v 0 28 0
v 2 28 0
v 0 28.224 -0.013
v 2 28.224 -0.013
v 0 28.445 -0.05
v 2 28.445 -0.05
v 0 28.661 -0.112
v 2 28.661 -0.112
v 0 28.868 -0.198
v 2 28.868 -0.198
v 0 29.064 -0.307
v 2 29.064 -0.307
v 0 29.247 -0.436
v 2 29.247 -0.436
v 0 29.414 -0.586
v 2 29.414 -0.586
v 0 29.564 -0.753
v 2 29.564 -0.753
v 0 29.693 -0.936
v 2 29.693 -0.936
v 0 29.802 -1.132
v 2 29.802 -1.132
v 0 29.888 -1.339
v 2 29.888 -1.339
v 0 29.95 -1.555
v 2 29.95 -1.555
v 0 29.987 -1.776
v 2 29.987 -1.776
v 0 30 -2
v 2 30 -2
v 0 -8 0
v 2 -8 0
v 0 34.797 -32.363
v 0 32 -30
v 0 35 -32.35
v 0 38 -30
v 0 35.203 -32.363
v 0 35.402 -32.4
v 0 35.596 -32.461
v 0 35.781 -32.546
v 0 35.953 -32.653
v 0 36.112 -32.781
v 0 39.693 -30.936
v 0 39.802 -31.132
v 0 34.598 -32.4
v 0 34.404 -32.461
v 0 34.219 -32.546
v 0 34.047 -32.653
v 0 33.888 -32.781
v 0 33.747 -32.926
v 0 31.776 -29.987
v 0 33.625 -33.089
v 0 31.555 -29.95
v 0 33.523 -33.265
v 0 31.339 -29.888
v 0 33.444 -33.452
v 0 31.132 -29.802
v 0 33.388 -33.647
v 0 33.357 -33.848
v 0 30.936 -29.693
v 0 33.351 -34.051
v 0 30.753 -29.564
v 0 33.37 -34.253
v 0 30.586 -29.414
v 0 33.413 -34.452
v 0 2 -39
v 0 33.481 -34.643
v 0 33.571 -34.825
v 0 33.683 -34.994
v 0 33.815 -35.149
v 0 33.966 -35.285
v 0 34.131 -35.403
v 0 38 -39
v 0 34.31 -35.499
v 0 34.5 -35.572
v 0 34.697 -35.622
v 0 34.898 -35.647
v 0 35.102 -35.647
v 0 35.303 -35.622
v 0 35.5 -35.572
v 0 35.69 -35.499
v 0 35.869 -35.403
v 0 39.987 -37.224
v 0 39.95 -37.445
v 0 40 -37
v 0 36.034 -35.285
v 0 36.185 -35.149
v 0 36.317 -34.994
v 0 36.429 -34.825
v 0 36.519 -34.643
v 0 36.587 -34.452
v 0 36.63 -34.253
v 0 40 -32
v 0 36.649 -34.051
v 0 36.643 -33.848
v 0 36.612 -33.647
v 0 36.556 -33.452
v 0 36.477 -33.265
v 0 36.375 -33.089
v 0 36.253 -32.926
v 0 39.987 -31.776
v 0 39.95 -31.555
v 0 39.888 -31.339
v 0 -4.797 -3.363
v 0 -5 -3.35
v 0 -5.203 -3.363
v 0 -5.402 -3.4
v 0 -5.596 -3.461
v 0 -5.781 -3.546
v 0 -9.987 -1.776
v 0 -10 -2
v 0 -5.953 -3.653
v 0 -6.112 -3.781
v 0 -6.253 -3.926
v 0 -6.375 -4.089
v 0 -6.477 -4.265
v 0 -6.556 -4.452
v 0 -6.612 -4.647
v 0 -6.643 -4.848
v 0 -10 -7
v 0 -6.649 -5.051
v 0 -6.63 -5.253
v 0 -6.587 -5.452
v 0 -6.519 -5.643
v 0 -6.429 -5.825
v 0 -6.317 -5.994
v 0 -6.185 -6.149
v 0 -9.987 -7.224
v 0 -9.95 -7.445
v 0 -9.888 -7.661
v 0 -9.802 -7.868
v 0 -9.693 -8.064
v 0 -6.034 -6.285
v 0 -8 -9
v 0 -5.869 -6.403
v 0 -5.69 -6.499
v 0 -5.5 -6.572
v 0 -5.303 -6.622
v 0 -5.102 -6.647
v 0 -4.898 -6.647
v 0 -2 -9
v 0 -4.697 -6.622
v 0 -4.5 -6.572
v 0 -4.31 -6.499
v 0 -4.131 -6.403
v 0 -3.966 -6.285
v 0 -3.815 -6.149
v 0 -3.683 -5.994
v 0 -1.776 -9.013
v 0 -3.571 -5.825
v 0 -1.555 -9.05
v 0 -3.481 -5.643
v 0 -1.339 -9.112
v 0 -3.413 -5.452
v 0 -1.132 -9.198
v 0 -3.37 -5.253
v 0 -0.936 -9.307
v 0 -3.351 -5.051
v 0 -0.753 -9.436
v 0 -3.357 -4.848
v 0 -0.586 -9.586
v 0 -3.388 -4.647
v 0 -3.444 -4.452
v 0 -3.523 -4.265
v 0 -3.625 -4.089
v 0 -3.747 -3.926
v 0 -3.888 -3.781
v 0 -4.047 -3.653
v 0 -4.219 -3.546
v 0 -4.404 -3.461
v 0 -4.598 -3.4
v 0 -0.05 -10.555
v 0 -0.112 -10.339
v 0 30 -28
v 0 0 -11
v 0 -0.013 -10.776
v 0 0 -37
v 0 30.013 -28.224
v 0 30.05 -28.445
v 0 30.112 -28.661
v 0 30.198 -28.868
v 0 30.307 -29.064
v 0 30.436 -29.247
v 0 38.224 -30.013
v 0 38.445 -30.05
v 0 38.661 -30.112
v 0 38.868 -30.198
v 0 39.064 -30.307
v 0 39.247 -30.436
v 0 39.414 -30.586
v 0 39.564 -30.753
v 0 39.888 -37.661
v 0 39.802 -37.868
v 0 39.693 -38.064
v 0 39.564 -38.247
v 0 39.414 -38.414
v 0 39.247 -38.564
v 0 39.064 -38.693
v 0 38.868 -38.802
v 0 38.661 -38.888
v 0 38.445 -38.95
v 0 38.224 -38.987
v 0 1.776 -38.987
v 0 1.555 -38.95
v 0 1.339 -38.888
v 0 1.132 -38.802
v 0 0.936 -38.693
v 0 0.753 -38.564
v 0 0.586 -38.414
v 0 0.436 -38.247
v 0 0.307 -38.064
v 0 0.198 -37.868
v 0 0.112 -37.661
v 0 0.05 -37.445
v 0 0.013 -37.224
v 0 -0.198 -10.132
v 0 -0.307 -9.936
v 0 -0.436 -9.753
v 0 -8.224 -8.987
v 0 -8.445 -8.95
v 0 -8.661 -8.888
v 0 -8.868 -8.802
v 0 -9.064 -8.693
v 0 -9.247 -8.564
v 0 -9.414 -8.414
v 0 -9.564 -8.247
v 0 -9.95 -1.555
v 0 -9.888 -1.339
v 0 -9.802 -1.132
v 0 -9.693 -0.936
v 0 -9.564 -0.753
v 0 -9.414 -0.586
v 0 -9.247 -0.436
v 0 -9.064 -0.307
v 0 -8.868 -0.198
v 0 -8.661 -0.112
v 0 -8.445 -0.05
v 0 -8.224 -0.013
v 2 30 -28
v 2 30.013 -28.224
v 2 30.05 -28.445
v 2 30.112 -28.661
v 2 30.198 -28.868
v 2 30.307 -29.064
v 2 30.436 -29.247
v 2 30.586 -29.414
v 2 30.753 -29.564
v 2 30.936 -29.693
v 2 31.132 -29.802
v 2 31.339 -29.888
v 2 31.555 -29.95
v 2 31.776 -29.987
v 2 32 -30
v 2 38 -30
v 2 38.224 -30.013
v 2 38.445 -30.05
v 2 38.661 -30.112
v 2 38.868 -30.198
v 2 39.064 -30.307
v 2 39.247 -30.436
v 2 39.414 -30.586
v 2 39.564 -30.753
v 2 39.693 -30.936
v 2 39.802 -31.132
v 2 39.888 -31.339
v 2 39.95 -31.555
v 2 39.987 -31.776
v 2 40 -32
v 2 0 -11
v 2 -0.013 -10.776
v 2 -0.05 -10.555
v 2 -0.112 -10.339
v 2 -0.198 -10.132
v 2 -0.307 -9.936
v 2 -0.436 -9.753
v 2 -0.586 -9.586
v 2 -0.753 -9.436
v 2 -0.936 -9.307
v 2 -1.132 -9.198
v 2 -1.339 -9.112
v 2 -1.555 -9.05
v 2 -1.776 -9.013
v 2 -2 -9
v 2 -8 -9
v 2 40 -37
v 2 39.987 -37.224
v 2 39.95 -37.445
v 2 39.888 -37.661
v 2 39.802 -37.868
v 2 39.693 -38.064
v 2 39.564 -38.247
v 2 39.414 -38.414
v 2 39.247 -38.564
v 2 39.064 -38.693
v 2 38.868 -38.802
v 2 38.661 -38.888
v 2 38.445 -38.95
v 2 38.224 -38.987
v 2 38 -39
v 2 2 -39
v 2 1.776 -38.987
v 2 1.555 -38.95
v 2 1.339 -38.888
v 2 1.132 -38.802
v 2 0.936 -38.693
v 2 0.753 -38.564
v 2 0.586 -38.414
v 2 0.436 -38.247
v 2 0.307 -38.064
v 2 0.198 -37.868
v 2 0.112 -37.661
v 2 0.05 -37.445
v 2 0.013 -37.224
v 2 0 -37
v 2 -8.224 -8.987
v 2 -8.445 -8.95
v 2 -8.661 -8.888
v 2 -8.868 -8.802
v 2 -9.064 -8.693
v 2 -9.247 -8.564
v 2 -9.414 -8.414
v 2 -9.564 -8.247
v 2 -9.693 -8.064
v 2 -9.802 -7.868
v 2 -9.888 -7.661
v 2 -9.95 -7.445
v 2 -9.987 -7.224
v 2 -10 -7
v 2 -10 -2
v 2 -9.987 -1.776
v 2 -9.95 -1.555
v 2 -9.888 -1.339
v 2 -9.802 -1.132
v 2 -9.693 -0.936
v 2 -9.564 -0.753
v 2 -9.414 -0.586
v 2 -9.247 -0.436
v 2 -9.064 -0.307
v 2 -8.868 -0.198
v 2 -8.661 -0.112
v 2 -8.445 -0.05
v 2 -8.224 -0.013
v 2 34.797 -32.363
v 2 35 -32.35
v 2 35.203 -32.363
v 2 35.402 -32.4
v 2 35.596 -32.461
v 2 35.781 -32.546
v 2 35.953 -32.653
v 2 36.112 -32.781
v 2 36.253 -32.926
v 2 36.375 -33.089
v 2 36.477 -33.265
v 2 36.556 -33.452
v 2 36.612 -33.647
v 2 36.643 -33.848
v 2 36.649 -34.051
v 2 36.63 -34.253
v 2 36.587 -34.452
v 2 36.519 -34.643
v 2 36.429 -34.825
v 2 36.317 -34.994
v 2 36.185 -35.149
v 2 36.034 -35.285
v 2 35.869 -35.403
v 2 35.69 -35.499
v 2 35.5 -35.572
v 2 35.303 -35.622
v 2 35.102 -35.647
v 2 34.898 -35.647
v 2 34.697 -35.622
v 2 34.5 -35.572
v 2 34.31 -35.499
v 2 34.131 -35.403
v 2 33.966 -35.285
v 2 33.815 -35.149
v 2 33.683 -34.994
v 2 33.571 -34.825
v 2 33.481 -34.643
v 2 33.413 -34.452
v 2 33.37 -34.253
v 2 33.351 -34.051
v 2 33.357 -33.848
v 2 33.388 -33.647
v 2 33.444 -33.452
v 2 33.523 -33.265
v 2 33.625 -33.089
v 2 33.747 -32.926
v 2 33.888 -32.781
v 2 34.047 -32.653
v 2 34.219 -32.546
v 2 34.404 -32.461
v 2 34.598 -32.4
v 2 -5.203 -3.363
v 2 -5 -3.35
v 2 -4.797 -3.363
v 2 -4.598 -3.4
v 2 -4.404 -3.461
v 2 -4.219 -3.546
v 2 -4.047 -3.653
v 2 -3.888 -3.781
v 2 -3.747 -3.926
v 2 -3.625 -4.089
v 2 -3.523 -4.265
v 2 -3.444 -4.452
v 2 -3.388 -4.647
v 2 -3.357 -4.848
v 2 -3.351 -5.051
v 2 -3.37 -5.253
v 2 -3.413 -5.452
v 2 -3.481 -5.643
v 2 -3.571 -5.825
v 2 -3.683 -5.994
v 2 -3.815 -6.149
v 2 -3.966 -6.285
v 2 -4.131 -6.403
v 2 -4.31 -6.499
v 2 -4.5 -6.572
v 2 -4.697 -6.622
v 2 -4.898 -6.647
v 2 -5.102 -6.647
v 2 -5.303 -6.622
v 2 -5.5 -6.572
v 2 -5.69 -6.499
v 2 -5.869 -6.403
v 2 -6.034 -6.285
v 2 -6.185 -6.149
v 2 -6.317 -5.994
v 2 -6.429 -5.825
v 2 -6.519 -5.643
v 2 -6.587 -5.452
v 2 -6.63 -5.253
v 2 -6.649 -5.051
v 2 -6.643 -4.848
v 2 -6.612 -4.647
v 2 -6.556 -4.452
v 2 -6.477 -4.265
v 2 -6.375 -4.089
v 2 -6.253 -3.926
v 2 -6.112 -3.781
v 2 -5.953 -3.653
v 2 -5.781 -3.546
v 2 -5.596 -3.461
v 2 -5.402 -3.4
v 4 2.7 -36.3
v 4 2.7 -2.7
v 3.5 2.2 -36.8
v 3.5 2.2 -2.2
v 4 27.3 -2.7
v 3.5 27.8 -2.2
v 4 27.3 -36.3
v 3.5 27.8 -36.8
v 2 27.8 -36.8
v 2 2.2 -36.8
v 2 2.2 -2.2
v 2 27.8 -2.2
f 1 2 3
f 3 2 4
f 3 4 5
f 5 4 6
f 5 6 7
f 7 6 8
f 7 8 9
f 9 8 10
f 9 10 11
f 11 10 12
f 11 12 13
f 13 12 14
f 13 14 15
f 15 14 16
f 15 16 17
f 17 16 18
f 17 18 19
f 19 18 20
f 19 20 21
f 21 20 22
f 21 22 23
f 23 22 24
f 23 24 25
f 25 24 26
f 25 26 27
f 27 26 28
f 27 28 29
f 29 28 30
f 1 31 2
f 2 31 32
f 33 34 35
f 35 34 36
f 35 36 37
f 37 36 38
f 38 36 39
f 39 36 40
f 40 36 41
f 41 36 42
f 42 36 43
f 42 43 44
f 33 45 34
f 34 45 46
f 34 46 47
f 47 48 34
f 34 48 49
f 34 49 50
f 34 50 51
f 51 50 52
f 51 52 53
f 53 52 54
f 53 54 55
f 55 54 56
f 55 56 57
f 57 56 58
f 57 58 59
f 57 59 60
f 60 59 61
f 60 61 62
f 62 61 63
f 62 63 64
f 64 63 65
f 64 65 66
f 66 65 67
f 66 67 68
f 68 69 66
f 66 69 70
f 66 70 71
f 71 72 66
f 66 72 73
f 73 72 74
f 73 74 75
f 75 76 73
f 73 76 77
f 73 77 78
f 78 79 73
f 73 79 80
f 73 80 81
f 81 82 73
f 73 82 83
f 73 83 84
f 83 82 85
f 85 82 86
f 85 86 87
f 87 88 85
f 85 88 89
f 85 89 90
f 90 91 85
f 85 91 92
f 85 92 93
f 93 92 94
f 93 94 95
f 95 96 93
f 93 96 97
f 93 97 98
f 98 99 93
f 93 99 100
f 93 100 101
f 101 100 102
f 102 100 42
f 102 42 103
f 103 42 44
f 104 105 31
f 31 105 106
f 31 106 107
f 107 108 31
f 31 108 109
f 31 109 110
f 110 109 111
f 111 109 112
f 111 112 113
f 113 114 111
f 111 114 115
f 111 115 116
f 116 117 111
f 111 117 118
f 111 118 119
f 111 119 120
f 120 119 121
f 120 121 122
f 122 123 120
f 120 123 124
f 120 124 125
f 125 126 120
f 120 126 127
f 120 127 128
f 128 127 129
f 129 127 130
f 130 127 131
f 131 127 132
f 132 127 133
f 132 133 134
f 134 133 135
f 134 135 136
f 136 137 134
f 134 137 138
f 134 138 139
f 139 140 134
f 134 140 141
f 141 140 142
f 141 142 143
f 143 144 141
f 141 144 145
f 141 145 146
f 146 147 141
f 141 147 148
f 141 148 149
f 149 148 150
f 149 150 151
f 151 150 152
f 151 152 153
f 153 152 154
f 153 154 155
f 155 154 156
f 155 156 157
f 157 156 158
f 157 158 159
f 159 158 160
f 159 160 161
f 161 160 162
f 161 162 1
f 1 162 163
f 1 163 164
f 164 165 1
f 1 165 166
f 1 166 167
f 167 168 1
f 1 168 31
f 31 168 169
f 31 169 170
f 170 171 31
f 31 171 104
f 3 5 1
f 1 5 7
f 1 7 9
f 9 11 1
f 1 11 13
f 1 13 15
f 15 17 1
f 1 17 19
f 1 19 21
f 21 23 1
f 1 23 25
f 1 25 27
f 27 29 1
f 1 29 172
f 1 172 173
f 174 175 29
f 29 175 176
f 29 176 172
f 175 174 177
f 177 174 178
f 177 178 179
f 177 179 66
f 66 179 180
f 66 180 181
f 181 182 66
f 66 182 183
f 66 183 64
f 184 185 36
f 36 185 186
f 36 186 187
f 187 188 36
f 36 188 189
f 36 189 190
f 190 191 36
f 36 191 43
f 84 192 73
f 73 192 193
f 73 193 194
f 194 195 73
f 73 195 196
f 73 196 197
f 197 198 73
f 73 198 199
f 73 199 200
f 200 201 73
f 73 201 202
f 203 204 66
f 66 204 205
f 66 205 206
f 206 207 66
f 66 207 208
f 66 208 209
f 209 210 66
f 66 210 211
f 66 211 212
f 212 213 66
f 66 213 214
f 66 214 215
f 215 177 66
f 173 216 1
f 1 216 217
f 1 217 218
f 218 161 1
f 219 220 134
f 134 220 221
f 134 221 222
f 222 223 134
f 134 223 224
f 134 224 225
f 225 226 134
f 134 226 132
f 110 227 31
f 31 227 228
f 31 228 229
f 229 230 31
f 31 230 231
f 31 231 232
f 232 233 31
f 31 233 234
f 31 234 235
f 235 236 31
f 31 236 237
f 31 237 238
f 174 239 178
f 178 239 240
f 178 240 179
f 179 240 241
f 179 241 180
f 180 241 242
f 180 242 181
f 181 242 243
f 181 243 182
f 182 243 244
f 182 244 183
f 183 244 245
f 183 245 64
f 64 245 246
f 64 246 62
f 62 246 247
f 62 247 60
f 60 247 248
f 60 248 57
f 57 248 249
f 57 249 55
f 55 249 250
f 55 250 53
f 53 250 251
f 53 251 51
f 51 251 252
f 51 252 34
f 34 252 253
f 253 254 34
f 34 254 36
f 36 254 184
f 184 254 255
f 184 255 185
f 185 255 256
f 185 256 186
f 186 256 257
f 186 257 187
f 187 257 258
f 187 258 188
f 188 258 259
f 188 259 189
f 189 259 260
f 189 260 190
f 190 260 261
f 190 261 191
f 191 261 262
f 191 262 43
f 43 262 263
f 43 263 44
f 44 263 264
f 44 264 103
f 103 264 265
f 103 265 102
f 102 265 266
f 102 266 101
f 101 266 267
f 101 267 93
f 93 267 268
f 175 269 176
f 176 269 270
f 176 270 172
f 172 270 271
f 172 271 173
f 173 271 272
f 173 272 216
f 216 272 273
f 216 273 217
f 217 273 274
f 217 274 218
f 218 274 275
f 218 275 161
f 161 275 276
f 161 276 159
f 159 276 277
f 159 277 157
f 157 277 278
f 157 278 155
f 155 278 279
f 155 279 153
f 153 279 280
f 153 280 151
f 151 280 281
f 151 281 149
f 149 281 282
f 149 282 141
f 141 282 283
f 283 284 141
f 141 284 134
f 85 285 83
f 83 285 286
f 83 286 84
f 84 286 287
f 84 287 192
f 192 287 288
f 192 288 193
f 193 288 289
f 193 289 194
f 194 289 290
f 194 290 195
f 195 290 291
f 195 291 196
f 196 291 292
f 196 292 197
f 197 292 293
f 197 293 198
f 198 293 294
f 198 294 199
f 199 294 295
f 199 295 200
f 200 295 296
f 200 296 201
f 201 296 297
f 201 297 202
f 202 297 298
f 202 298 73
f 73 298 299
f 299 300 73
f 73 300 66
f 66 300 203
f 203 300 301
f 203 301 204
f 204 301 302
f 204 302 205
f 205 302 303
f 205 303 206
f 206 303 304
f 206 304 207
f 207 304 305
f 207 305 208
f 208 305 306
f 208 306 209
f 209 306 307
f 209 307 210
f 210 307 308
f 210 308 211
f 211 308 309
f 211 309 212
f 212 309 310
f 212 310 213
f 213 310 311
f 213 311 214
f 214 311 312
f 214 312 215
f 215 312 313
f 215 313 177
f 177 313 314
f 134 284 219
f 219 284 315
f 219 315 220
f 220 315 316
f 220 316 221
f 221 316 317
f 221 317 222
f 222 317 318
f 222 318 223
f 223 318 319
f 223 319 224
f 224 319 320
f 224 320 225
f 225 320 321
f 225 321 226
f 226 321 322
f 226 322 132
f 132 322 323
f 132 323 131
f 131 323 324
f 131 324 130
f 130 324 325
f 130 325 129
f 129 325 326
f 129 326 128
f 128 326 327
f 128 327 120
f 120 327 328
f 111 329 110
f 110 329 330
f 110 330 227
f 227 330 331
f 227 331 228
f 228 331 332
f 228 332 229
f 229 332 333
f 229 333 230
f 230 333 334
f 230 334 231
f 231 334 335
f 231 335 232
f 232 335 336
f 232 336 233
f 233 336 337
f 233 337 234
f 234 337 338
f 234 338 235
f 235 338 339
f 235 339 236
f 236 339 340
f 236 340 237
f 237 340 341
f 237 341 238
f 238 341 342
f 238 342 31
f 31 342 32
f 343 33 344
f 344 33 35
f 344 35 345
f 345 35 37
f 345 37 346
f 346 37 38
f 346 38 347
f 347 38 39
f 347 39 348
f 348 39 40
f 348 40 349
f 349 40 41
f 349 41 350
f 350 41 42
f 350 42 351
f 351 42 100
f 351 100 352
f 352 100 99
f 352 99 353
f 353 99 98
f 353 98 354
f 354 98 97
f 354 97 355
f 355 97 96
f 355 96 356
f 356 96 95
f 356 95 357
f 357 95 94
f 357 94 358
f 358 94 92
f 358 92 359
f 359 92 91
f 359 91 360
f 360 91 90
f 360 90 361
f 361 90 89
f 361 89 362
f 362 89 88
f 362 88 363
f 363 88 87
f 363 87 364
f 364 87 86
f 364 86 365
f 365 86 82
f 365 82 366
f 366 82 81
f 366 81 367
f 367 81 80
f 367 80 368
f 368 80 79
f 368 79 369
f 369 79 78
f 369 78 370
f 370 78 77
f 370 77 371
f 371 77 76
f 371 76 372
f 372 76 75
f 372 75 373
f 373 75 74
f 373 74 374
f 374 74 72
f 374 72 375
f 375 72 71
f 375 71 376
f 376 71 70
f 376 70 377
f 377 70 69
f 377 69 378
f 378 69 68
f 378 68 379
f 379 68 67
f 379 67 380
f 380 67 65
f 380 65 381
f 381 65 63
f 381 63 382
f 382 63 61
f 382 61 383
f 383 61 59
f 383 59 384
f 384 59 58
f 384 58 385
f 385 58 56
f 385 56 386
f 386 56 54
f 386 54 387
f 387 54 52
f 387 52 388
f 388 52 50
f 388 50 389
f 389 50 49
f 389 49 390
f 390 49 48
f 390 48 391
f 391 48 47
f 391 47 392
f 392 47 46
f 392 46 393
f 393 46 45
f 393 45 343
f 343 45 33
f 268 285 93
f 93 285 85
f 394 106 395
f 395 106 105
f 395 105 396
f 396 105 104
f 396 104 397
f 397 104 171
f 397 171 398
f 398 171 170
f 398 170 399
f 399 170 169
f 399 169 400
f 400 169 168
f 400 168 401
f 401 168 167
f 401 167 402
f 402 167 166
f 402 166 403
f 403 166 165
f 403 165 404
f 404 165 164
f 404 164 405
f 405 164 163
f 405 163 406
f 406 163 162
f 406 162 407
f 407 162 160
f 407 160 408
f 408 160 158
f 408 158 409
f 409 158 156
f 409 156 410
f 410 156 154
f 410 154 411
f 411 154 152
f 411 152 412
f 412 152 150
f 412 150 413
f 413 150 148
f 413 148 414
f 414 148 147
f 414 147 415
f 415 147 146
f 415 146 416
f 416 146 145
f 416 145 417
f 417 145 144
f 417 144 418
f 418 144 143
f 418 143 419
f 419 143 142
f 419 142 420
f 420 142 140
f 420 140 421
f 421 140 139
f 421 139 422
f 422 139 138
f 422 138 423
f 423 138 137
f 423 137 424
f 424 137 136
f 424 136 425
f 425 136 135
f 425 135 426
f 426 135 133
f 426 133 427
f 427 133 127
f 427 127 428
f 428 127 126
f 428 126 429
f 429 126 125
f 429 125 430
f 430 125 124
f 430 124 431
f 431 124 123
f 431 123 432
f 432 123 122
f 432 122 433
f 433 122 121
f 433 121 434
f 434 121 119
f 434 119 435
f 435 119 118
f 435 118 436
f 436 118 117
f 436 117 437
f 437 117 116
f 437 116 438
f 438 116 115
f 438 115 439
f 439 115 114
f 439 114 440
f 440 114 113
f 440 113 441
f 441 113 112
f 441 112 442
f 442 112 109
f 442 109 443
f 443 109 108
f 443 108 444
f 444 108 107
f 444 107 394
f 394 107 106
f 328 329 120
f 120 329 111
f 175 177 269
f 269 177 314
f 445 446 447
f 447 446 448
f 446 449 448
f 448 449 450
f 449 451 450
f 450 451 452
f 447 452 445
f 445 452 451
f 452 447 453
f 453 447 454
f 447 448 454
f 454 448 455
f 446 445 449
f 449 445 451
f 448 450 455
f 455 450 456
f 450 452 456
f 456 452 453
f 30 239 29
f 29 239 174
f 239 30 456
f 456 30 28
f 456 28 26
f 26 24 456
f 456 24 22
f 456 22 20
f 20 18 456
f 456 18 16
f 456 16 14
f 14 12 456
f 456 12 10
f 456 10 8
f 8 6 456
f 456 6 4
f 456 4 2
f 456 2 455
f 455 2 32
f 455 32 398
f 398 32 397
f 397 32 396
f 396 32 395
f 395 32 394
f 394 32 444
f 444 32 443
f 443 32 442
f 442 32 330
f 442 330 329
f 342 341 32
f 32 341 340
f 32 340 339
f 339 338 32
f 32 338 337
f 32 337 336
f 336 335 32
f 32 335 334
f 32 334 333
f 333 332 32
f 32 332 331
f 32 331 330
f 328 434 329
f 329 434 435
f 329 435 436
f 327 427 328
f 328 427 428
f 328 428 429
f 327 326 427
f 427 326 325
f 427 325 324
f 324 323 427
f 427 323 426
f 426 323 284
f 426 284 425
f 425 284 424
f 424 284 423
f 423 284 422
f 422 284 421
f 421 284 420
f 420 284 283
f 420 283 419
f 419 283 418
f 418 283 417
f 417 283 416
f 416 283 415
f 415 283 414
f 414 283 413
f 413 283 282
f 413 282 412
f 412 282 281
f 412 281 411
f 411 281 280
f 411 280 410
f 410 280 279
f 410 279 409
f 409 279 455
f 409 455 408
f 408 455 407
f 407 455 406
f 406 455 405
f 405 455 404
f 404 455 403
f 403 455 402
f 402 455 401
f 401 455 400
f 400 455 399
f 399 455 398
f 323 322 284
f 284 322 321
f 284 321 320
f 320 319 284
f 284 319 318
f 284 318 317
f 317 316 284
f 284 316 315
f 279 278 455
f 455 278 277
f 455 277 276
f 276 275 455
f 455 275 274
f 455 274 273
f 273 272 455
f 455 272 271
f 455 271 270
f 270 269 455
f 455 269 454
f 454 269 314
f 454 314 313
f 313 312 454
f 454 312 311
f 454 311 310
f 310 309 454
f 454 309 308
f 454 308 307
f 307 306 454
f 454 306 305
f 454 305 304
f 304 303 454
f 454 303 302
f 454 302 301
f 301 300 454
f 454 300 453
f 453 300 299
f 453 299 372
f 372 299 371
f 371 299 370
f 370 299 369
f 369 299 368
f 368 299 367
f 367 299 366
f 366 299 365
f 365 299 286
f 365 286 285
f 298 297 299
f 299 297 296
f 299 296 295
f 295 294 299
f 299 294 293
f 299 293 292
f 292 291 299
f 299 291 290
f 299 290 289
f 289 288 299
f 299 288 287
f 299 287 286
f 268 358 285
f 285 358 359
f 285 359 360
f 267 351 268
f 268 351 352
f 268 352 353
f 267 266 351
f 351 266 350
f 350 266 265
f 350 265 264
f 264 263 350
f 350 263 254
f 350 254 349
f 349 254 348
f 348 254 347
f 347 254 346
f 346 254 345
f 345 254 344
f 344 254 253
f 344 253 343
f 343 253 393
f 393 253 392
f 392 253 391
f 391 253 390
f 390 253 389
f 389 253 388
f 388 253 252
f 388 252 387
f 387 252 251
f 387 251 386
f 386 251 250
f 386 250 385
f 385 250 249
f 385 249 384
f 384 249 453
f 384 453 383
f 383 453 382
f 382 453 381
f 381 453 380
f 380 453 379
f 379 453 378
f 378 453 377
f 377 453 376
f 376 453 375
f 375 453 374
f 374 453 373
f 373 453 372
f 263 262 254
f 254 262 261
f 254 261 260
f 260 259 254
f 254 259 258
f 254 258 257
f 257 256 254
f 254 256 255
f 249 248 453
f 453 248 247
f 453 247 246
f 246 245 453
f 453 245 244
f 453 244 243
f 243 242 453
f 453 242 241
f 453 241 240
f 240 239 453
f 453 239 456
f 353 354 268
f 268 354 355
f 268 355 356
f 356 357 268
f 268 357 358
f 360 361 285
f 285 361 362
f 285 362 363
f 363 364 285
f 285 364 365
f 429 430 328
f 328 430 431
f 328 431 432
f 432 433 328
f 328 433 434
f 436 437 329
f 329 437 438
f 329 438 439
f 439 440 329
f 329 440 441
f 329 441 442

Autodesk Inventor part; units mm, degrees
ref_plane "YZ Plane" through (0, 0, 0) normal (1, 0, 0) x (0, 1, 0)
ref_plane "XZ Plane" through (0, 0, 0) normal (0, 1, 0) x (-1, 0, 0)
ref_plane "XY Plane" through (0, 0, 0) normal (0, 0, 1) x (1, 0, 0)
sketch "Skizze1" plane through (0, 0, 0) normal (1, 0, 0) x (0, 1, 0)
  line L0 (0, 0) -> (30, 0)
  line L1 (30, 0) -> (30, -39)
  line L2 (30, -39) -> (0, -39)
  line L3 (0, -39) -> (0, 0)
  dimension "d0" = 30
  dimension "d1" = 39
extrude "Extrusion1" add sketch "Skizze1" along normal blind 2
sketch "Skizze2" plane through (2, 0, 0) normal (1, 0, 0) x (0, 0, -1)
  line L0 (2.2, 27.8) -> (36.8, 27.8)
  line L1 (36.8, 27.8) -> (36.8, 2.2)
  line L2 (36.8, 2.2) -> (2.2, 2.2)
  line L3 (2.2, 2.2) -> (2.2, 27.8)
  line L4 (0, 30) -> (0, 0) projected
  line L5 (39, 30) -> (0, 30) projected
  dimension "d4" = 25.6
  dimension "d5" = 34.6
  dimension "d6" = 2.2
  dimension "d7" = 2.2
extrude "Extrusion2" add sketch "Skizze2" along normal blind 2
chamfer "Fase1" distance 0.5 angle 45 4 edges at (4, 27.8, -19.5) (4, 15, -2.2) (4, 2.2, -19.5) (4, 15, -36.8)
sketch "Skizze3" plane through (0, 0, 0) normal (-1, 0, 0) x (0, 0, 1)
  line L0 (0, 0) -> (-39, 0) projected
  line L1 (0, 0) -> (-9, 0)
  line L2 (-9, 0) -> (-9, -10)
  line L3 (-9, -10) -> (0, -10)
  line L4 (0, -10) -> (0, 0)
  line L5 (-39, 0) -> (-39, 30) projected
  line L6 (-39, 30) -> (-30, 30)
  line L7 (-30, 30) -> (-30, 40)
  line L8 (-30, 40) -> (-39, 40)
  line L9 (-39, 40) -> (-39, 30)
  circle A0 centre (-5, -5) radius 1.65
  circle A1 centre (-34, 35) radius 1.65
  dimension "d13" = 10
  dimension "d14" = 9
  dimension "d15" = 9
  dimension "d16" = 10
  dimension "d17" = 5
  dimension "d18" = 5
  dimension "d19" = 3.3
  dimension "d20" = 5
  dimension "d21" = 5
  dimension "d22" = 3.3
extrude "Extrusion3" add sketch "Skizze3" against normal blind 2
fillet "Rundung1" radius 2 8 edges at (1, -10, 0) (1, -10, -9) (1, 0, -39) (1, 40, -39) (1, 0, -9) (1, 40, -30) (1, 30, -30) (1, 30, 0)
properties part number "deckel_wemos"
